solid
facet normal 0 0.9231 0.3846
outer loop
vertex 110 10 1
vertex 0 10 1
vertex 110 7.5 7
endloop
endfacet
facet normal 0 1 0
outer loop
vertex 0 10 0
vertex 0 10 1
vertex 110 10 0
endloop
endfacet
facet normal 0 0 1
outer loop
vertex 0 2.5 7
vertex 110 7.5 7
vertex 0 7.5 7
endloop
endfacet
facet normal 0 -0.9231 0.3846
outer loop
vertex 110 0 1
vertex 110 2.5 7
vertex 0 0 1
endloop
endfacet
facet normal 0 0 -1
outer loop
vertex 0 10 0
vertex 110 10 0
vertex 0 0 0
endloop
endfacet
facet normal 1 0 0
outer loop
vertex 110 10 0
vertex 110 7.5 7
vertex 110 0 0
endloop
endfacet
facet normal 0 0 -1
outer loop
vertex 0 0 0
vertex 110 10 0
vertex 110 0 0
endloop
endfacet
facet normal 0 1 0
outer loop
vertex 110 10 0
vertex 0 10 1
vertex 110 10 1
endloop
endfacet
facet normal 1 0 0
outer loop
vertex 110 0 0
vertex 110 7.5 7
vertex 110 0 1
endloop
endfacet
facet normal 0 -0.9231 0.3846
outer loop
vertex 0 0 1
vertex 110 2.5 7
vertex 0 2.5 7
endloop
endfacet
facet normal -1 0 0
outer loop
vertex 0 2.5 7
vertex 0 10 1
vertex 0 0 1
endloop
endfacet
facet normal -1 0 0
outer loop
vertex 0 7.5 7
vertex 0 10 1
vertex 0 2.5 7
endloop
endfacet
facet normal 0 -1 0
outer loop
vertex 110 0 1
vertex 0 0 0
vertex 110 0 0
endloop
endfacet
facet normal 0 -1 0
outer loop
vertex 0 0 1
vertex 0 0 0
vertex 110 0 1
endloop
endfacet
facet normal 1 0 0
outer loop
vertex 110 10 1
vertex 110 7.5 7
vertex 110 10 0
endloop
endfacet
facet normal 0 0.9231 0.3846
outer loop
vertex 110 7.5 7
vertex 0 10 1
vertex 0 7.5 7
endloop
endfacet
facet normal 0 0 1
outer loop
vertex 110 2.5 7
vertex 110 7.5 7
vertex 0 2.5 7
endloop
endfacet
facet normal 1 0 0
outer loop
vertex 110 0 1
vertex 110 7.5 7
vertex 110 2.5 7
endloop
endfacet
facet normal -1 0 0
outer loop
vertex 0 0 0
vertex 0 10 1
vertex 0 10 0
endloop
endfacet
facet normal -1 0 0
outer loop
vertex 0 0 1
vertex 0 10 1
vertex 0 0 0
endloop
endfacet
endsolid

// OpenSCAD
// Wheel stop: defines where the car stops in front of the barrier (repeatable camera view).
// Place it so the plate ends up on the stop line from nacrt/tlocrt.svg.
length = 110; $fn = 16;
hull() {
    cube([length, 10, 1]);
    translate([0, 2.5, 0]) cube([length, 5, 7]);
}
